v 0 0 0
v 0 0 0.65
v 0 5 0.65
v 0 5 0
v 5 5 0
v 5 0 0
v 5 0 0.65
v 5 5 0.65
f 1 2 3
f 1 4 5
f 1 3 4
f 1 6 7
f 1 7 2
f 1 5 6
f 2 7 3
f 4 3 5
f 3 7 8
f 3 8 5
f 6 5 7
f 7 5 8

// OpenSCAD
/* Warning, this is a very basic generator with a lot of approximation 
input data : [UFBGA, BQB, 5x5x0.65mm, 64, , B, C04-21153B]
generated by com.zoubworld.electronics.cad.model3d.Basic
Date : Sun Feb 15 10:50:49 CET 2026
*/

//body
color("black")
translate([0,0,0])
cube([5.0,5.0,0.65], center=false);
